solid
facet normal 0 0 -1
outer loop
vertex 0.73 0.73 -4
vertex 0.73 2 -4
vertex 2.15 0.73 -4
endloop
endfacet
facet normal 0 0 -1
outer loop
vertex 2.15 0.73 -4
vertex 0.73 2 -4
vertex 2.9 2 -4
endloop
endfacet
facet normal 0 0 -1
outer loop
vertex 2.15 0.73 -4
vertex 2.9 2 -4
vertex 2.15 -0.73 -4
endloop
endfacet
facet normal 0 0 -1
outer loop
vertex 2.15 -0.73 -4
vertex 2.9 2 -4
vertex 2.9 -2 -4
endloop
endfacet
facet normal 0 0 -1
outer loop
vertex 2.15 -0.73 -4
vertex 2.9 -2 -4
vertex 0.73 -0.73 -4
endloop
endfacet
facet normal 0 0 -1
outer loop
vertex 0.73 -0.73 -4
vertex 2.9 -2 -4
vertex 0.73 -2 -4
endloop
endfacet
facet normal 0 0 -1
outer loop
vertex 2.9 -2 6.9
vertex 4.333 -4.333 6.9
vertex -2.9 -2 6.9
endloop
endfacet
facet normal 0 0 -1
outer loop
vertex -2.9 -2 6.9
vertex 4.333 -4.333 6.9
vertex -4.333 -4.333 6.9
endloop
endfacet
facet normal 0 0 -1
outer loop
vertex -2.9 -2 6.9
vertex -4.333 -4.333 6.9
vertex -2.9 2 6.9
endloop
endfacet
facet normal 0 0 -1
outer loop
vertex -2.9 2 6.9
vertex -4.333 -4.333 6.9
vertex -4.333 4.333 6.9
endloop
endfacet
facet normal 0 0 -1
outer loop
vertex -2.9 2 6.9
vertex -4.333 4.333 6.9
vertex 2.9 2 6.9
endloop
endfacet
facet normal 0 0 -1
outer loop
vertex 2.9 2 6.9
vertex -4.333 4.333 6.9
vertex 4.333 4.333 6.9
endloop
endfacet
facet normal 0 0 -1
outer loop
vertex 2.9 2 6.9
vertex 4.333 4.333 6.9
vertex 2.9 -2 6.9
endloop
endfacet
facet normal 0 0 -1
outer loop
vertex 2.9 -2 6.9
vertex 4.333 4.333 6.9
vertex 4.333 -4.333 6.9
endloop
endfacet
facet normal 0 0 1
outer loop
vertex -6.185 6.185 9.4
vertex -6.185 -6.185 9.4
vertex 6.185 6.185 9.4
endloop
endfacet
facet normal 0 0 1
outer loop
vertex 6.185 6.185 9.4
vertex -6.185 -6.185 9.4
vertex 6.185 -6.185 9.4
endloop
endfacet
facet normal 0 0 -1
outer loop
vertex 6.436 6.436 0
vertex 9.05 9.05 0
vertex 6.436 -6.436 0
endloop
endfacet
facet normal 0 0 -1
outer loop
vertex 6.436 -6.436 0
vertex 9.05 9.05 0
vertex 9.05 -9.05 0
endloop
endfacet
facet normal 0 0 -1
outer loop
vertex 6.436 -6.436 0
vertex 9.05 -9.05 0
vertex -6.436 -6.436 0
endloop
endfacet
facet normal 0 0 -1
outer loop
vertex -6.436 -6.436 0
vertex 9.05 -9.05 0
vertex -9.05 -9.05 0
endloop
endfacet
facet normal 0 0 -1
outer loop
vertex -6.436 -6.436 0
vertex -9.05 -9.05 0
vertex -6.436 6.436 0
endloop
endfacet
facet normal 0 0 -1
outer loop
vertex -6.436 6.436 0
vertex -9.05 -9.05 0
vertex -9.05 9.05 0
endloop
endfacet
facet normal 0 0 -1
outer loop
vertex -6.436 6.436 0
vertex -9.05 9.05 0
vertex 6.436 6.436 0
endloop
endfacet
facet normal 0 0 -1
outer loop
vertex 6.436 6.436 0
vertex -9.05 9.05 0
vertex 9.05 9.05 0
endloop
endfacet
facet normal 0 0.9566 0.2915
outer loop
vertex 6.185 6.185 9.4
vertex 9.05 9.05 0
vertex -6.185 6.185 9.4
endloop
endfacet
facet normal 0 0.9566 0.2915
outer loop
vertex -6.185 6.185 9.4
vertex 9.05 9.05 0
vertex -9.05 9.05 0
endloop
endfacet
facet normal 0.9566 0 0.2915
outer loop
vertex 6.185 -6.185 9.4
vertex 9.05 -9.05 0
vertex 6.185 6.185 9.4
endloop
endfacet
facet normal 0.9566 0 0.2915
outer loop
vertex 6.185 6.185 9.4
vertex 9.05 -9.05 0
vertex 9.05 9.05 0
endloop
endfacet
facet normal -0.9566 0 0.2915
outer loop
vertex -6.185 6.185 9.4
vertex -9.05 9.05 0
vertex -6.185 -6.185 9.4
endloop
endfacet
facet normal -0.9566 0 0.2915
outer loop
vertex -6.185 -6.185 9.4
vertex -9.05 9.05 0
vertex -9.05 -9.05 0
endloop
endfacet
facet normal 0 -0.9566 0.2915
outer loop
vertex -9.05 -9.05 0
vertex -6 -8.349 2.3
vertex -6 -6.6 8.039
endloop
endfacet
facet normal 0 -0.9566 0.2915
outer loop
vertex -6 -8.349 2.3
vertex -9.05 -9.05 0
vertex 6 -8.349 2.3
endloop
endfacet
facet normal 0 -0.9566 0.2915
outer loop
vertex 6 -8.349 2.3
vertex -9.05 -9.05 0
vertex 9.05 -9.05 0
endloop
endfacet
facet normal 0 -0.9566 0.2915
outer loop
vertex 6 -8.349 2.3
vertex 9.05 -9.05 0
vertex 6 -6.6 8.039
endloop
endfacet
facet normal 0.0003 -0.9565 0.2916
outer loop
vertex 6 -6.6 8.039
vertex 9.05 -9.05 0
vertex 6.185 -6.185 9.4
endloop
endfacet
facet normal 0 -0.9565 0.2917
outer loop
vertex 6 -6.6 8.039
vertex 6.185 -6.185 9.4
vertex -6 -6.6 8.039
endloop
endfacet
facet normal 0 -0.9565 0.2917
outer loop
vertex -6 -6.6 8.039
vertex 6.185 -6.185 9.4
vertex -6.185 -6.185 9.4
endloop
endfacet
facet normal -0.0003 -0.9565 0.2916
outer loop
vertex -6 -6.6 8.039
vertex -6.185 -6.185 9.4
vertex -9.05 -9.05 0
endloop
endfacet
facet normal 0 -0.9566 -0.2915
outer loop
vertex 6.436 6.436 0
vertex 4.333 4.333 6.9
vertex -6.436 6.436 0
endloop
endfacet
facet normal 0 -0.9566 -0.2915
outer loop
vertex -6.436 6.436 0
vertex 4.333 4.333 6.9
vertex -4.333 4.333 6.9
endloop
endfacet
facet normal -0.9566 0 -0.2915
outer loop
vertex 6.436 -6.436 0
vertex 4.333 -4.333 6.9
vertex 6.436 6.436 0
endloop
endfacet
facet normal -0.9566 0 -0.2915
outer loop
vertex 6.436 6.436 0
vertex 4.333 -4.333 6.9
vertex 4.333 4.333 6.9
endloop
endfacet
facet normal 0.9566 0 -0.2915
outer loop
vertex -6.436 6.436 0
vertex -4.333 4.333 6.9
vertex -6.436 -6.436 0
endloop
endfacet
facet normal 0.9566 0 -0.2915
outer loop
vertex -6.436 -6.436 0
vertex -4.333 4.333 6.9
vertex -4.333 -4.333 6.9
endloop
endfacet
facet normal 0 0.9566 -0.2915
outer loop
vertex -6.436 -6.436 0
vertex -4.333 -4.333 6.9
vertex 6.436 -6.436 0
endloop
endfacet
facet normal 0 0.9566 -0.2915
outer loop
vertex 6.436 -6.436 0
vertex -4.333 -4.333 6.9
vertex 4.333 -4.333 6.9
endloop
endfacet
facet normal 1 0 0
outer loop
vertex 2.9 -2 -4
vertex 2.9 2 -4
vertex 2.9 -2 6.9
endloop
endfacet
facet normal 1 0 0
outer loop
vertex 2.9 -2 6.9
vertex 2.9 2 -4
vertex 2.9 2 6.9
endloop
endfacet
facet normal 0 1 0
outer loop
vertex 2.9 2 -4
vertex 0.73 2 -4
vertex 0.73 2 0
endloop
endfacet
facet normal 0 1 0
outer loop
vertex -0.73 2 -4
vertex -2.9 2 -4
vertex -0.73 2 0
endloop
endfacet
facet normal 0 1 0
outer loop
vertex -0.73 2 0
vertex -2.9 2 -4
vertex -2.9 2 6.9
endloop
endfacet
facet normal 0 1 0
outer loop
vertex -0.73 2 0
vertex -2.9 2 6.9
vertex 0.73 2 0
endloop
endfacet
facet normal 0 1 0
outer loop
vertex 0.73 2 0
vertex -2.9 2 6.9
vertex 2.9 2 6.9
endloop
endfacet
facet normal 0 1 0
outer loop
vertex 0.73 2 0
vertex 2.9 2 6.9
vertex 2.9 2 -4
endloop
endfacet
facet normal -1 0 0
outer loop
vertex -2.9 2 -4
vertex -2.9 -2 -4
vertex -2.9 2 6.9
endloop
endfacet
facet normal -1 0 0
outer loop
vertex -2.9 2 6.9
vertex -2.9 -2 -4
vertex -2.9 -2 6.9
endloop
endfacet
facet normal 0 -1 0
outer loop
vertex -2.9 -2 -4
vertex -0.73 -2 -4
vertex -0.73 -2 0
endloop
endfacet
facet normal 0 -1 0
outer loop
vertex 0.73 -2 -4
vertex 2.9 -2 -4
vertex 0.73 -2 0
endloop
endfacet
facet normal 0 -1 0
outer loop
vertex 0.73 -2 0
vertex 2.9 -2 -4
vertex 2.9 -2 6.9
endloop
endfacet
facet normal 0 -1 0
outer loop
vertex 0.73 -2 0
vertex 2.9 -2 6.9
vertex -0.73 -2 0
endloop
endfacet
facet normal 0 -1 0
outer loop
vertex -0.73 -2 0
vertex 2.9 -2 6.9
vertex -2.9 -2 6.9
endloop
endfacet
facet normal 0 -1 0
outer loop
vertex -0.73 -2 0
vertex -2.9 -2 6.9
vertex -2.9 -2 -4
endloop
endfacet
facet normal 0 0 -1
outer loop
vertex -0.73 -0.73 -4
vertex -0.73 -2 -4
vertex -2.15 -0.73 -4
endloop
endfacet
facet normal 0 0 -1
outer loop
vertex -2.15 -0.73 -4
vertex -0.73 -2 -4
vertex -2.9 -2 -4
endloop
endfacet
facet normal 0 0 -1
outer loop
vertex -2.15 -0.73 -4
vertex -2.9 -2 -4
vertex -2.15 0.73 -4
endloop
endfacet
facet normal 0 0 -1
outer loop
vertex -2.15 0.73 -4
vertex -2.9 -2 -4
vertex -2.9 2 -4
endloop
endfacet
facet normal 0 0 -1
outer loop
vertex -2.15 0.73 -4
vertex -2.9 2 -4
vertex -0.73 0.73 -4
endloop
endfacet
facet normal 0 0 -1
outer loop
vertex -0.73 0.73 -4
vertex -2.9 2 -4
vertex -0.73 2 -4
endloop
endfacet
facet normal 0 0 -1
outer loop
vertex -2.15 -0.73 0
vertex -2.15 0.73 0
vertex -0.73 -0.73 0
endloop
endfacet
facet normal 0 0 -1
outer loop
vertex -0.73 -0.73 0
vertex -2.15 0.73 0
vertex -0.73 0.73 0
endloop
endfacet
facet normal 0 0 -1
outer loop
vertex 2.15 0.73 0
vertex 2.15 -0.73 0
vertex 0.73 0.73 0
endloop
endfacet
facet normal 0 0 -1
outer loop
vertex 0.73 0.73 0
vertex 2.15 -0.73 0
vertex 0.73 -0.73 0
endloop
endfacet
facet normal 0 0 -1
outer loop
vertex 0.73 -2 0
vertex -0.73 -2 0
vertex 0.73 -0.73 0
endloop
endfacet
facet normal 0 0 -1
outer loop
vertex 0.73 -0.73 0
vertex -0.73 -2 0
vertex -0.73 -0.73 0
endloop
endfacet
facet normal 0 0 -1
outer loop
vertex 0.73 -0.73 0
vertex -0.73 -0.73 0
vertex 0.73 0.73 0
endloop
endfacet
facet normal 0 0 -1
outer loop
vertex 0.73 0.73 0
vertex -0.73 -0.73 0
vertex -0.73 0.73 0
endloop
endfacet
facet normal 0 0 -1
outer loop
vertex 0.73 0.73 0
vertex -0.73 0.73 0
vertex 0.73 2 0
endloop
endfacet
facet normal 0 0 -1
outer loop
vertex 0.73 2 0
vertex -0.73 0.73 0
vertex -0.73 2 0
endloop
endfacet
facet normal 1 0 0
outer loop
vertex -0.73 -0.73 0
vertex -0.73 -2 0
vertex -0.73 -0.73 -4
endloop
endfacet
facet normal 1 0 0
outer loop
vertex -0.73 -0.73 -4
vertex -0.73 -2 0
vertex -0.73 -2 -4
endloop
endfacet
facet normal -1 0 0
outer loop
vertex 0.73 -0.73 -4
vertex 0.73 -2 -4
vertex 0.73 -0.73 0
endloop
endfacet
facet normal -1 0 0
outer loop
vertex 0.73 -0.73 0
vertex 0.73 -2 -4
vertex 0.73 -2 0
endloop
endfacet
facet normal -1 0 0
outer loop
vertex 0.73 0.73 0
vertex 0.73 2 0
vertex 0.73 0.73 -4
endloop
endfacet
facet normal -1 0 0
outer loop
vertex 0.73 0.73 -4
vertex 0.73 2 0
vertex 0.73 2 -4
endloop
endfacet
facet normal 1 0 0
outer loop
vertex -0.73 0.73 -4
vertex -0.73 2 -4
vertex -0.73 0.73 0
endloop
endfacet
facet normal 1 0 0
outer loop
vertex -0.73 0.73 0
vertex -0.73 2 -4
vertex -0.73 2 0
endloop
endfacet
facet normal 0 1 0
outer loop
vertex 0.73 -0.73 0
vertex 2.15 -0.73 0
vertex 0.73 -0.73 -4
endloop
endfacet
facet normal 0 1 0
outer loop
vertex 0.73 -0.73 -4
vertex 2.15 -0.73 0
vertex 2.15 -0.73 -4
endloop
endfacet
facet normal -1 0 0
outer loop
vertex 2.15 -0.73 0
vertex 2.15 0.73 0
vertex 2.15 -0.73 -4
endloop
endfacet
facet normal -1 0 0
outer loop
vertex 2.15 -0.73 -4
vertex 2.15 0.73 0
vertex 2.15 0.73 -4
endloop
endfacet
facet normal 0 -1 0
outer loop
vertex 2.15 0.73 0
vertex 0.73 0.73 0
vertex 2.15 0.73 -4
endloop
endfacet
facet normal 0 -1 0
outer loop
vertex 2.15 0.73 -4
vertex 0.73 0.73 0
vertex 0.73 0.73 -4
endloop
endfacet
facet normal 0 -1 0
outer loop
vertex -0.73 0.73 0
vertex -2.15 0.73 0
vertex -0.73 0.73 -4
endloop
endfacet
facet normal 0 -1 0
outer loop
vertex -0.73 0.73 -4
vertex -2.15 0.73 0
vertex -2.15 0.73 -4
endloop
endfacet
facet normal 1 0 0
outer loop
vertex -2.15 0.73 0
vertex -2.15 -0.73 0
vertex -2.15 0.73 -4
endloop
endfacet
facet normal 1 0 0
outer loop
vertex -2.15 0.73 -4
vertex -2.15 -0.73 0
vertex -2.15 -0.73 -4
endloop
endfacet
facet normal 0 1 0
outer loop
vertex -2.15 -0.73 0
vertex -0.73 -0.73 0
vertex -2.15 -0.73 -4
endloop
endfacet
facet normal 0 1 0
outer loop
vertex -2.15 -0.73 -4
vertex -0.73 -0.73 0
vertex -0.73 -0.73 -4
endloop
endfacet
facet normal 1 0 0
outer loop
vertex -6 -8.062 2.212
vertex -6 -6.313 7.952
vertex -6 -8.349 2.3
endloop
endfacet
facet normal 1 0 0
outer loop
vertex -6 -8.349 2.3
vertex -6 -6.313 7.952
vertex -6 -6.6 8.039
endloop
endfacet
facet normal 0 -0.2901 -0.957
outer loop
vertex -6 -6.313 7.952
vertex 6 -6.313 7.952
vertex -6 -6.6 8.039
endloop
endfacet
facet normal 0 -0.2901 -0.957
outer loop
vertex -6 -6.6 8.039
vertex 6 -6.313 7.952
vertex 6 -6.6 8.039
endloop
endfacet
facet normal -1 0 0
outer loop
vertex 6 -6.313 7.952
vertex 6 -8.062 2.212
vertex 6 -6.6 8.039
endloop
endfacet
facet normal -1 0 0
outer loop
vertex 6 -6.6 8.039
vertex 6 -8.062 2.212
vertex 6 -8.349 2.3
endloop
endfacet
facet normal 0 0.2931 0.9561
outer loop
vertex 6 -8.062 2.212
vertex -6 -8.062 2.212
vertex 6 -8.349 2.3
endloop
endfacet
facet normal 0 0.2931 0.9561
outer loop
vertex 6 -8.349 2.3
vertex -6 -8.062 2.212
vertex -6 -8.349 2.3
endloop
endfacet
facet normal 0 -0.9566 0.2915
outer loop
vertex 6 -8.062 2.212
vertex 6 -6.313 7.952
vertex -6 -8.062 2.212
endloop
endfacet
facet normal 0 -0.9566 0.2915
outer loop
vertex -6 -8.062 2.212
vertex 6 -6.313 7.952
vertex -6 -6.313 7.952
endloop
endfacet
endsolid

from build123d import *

# Parameters (mm, degrees)
SHELL4_T            = -2.5
SKETCH5_W           = 5.8
SKETCH5_H           = 4
BOSS_EXTRUDE1_DEPTH = 10.9
CUT_EXTRUDE3_DEPTH  = 4
SKETCH7_W           = 12
SKETCH7_H           = 6
CUT_EXTRUDE4_DEPTH  = 0.3


with BuildPart() as part:
    # Sketch1 → Loft2 section 0
    with BuildSketch(Plane.XY):
        with BuildLine():
            Line((-9.05, 9.05), (9.05, 9.05))
            Line((9.05, 9.05), (9.05, -9.05))
            Line((9.05, -9.05), (-9.05, -9.05))
            Line((-9.05, -9.05), (-9.05, 9.05))
        make_face()
    # Sketch2 → Loft2 section 1
    with BuildSketch(Plane.XY.offset(9.4)):
        with BuildLine():
            Line((-6.185, 6.185), (6.185, 6.185))
            Line((6.185, 6.185), (6.185, -6.185))
            Line((6.185, -6.185), (-6.185, -6.185))
            Line((-6.185, -6.185), (-6.185, 6.185))
        make_face()
    loft()

    # Shell4
    shell4_openings = [part.faces().sort_by_distance(p)[0] for p in [
        (0, 0, 0),
    ]]
    offset(amount=SHELL4_T, openings=shell4_openings, kind=Kind.INTERSECTION)

    # Sketch5 → Boss-Extrude1 (add)
    with BuildSketch(Plane.XY.offset(-4)):
        Rectangle(SKETCH5_W, SKETCH5_H)
    extrude(amount=BOSS_EXTRUDE1_DEPTH)

    # Sketch6 → Cut-Extrude3 (cut)
    with BuildSketch(Plane(origin=(0, 0, -4), x_dir=(-1, 0, 0), z_dir=(0, 0, -1))):
        Polygon((0.73, 2.15), (-0.73, 2.15), (-0.73, 0.73), (-2.15, 0.73), (-2.15, -0.73), (-0.73, -0.73), (-0.73, -2.15), (0.73, -2.15), (0.73, -0.73), (2.15, -0.73), (2.15, 0.73), (0.73, 0.73), align=None)
    extrude(amount=-CUT_EXTRUDE3_DEPTH, mode=Mode.SUBTRACT)

    # Sketch7 → Cut-Extrude4 (cut)
    with BuildSketch(Plane(origin=(0, -8.280756947, 2.523869006), x_dir=(1, 0, 0), z_dir=(0, -0.9565567247121477, 0.2915462783298196))):
        with Locations((0, 2.765838851)):
            Rectangle(SKETCH7_W, SKETCH7_H)
    extrude(amount=-CUT_EXTRUDE4_DEPTH, mode=Mode.SUBTRACT)


solid = part.part
